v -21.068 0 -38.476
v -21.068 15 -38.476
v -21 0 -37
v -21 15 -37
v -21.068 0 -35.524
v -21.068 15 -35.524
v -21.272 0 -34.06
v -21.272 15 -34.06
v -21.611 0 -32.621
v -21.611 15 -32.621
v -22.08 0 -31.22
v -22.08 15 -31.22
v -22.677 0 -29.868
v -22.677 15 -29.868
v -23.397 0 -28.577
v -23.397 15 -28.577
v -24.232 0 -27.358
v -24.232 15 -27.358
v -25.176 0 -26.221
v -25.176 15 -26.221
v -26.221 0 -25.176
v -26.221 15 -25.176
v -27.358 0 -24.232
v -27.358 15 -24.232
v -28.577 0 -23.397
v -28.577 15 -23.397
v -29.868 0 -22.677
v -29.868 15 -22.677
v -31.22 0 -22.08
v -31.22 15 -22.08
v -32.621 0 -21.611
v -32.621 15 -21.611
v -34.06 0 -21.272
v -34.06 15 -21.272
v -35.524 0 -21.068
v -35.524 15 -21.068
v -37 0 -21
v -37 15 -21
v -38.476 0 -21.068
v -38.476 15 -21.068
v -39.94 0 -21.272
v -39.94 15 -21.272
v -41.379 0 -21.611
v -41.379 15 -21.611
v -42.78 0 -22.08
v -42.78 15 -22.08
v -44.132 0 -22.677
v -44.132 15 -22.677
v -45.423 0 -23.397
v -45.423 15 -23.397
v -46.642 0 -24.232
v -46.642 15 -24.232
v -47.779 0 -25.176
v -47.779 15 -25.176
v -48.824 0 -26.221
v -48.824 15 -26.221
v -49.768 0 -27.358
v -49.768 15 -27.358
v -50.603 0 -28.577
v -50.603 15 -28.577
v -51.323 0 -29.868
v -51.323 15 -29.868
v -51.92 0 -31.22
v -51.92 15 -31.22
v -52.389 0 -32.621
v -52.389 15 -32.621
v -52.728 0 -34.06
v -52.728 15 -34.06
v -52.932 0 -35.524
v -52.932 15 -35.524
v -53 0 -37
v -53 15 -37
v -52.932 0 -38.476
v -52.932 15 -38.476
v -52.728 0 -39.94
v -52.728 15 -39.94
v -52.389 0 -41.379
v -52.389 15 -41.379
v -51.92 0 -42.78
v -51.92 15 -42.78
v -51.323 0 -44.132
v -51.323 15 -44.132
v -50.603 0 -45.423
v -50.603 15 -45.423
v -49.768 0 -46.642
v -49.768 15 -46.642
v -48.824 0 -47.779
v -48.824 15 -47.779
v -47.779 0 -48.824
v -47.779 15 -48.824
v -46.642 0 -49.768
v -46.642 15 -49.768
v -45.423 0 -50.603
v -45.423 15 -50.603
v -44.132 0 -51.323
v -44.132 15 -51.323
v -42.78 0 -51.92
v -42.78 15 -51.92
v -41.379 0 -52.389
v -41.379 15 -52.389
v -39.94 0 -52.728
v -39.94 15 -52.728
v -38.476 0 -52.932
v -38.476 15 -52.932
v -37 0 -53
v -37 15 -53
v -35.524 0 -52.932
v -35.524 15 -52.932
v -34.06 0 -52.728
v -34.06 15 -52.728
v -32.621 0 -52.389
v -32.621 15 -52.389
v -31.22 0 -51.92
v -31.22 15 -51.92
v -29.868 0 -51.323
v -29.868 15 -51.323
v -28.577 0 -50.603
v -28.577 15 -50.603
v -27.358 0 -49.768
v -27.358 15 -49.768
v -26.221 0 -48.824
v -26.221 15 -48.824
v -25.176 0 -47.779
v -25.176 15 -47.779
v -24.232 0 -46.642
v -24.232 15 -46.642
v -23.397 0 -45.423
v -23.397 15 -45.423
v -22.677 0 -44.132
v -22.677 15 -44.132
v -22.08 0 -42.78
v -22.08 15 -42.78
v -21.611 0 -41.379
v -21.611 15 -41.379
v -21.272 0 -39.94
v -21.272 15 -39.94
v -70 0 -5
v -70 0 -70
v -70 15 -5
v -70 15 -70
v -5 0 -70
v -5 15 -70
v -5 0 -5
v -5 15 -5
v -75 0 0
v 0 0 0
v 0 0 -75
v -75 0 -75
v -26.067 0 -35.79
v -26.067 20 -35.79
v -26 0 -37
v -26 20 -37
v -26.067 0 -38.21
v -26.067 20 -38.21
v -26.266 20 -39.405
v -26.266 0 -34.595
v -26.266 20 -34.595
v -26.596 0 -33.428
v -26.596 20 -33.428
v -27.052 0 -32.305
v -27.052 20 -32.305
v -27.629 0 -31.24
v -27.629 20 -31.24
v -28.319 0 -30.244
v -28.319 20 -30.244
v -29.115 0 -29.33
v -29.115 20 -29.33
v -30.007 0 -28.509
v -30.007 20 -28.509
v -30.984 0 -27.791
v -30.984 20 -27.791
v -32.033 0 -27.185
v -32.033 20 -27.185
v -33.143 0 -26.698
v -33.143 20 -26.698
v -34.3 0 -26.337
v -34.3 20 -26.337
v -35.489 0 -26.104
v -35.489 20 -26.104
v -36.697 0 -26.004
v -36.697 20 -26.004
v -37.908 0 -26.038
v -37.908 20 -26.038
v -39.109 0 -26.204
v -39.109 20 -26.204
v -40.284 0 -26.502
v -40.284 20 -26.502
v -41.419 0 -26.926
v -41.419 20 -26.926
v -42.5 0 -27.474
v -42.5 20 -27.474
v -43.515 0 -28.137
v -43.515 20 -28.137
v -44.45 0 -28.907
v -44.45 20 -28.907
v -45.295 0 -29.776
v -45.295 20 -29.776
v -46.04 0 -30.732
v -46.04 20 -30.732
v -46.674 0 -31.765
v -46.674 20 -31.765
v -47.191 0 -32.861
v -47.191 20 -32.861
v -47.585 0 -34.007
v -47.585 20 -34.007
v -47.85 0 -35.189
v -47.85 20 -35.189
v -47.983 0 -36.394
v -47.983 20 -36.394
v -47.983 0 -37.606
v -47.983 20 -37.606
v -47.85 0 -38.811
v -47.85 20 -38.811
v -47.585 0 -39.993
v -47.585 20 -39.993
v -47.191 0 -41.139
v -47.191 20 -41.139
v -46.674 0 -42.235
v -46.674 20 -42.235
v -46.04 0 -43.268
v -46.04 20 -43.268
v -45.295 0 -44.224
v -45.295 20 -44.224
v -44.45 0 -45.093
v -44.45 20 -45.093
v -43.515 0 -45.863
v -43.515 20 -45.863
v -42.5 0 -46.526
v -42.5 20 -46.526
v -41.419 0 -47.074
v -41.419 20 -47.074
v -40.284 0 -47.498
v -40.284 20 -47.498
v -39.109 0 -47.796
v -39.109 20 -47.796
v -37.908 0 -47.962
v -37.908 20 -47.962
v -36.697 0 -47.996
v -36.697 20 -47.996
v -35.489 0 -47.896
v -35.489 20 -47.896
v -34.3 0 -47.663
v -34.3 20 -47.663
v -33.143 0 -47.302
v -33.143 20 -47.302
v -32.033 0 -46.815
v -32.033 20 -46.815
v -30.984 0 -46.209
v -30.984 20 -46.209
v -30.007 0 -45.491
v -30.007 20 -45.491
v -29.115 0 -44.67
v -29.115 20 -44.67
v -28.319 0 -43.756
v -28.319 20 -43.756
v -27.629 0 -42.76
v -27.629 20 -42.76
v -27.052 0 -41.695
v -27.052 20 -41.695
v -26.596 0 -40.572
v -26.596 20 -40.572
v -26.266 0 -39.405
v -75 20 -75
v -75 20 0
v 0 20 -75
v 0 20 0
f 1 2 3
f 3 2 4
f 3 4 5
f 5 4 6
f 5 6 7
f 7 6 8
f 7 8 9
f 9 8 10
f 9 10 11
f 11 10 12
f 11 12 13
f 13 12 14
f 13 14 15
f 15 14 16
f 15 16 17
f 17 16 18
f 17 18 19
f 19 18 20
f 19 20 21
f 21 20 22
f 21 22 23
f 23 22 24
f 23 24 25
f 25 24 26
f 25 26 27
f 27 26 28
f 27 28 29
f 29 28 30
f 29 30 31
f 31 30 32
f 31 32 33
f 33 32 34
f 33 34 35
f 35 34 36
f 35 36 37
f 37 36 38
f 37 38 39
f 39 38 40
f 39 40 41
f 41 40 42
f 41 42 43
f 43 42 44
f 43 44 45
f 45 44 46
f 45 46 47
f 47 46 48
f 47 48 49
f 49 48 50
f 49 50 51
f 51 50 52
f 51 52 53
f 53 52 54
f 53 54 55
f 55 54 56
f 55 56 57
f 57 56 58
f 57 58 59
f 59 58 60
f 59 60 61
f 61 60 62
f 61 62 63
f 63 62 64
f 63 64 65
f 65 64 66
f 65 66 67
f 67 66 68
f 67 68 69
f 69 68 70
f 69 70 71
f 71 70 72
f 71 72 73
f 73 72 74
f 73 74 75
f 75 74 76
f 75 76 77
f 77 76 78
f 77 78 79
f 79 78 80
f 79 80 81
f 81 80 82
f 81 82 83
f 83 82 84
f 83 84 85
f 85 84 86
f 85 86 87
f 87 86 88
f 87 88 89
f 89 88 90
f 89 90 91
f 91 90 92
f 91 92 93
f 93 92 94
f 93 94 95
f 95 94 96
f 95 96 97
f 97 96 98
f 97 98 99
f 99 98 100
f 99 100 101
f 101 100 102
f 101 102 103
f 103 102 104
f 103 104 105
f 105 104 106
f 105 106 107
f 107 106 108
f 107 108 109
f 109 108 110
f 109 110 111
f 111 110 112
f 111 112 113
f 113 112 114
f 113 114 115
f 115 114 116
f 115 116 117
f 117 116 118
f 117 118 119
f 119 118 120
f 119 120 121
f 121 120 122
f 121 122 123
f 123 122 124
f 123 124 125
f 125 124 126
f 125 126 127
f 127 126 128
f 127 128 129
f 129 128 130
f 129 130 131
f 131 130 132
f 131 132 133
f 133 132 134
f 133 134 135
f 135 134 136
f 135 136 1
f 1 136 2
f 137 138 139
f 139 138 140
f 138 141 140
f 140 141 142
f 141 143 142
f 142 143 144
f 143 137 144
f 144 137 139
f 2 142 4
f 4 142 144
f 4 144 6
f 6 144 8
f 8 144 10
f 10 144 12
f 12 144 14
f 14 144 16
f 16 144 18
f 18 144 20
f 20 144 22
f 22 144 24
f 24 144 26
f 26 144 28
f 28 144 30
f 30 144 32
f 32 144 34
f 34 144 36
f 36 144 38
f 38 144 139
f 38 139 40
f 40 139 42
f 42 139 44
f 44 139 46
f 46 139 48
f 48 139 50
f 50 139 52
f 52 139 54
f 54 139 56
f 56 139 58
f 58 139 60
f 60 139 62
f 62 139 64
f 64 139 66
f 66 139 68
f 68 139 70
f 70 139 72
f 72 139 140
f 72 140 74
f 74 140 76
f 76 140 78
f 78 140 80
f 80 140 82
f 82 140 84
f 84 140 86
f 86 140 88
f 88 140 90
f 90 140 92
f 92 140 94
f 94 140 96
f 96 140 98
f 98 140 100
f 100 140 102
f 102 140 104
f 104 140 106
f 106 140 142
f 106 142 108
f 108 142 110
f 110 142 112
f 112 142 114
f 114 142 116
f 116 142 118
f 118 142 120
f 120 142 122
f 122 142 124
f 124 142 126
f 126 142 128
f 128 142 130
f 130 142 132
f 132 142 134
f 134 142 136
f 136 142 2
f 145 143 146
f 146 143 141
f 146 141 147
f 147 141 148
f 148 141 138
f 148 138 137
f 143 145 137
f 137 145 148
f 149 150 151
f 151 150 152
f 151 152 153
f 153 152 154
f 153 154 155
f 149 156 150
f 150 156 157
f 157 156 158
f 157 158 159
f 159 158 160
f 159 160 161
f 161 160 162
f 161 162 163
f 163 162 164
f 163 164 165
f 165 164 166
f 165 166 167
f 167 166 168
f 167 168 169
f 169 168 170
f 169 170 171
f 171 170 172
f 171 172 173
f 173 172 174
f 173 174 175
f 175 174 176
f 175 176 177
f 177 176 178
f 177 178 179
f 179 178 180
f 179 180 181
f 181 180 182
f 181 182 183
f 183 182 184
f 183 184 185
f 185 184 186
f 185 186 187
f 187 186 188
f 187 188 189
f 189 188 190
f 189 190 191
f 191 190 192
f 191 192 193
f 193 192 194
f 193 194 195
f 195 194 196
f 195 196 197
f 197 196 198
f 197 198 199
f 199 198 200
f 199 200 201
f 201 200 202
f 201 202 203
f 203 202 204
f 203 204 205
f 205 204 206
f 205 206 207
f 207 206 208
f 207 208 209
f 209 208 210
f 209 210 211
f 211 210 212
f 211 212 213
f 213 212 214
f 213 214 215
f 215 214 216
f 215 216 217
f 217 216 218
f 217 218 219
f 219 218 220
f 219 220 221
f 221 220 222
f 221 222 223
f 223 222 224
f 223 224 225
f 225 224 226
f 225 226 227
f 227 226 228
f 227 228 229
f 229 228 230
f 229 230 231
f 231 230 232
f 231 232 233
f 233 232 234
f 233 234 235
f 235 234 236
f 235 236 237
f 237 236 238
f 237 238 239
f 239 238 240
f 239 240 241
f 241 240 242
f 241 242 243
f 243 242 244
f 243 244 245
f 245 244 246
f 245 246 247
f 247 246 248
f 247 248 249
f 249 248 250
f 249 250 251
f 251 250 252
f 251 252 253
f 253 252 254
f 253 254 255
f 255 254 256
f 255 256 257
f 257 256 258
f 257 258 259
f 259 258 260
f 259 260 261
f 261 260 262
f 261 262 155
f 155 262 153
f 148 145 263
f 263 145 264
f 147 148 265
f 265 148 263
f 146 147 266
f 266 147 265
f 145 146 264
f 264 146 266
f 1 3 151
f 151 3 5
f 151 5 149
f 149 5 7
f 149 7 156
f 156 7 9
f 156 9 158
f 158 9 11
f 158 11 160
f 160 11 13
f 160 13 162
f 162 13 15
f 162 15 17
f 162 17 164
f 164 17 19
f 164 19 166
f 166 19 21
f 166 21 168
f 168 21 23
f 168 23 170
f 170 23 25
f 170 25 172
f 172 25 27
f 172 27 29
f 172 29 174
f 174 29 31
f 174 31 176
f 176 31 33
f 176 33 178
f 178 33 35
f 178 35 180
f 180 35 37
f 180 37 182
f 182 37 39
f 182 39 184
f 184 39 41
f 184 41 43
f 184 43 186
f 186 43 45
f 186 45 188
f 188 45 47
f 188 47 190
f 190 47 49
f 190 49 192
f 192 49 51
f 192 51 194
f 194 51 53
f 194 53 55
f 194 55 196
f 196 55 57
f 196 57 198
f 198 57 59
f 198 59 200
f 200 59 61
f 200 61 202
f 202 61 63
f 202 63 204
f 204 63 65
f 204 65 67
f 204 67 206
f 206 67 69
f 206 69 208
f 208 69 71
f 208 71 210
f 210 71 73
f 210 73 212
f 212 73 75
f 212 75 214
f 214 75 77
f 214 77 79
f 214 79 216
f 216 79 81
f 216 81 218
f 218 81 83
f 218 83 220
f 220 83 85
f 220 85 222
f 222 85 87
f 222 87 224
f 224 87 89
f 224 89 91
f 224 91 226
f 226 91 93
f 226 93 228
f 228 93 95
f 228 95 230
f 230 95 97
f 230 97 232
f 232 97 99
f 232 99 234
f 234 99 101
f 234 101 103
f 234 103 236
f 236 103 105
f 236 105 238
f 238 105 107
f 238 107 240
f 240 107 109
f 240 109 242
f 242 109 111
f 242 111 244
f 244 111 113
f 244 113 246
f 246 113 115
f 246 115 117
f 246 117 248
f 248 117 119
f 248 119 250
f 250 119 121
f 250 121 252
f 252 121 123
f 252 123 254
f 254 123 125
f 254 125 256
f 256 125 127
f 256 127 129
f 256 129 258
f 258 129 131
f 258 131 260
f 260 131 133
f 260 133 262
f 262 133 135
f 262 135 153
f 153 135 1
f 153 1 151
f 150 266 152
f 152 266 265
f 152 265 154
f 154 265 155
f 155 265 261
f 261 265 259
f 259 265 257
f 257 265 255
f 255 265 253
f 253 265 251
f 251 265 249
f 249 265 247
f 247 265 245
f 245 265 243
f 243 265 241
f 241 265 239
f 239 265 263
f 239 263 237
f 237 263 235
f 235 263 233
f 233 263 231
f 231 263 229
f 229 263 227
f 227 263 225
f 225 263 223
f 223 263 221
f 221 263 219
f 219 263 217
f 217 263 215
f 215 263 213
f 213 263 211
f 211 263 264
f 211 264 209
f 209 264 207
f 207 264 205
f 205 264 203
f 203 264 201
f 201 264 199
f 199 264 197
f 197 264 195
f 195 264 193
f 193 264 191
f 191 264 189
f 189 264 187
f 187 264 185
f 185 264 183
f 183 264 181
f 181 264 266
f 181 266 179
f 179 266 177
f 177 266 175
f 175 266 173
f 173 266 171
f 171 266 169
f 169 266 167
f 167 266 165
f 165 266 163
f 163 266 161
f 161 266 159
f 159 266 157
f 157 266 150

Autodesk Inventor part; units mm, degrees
ref_plane "YZ Plane" through (0, 0, 0) normal (1, 0, 0) x (0, 1, 0)
ref_plane "XZ Plane" through (0, 0, 0) normal (0, 1, 0) x (-1, 0, 0)
ref_plane "XY Plane" through (0, 0, 0) normal (0, 0, 1) x (1, 0, 0)
sketch "Sketch1" plane through (0, 0, 0) normal (0, 1, 0) x (-1, 0, 0)
  point P0 (0, 0)
sketch "Sketch2" plane through (0, 0, 0) normal (0, 1, 0) x (-1, 0, 0)
  line L0 (0, 0) -> (75, 0)
  line L1 (75, 0) -> (75, -75)
  line L2 (75, -75) -> (0, -75)
  line L3 (0, -75) -> (0, 0)
  dimension "d0" = 75
  dimension "d1" = 75
extrude "Extrusion1" add sketch "Sketch2" along normal blind 20
sketch "Sketch3" plane through (0, 20, 0) normal (0, 1, 0) x (1, 0, 0)
  circle A0 centre (-37, 37) radius 11
  point P0 (0, 0)
extrude "Extrusion2" cut sketch "Sketch3" against normal blind 39
shell "Shell1" thickness 5 removed faces 1 at (-37.7753, 0, -65.9733)
properties part number "B9A"
